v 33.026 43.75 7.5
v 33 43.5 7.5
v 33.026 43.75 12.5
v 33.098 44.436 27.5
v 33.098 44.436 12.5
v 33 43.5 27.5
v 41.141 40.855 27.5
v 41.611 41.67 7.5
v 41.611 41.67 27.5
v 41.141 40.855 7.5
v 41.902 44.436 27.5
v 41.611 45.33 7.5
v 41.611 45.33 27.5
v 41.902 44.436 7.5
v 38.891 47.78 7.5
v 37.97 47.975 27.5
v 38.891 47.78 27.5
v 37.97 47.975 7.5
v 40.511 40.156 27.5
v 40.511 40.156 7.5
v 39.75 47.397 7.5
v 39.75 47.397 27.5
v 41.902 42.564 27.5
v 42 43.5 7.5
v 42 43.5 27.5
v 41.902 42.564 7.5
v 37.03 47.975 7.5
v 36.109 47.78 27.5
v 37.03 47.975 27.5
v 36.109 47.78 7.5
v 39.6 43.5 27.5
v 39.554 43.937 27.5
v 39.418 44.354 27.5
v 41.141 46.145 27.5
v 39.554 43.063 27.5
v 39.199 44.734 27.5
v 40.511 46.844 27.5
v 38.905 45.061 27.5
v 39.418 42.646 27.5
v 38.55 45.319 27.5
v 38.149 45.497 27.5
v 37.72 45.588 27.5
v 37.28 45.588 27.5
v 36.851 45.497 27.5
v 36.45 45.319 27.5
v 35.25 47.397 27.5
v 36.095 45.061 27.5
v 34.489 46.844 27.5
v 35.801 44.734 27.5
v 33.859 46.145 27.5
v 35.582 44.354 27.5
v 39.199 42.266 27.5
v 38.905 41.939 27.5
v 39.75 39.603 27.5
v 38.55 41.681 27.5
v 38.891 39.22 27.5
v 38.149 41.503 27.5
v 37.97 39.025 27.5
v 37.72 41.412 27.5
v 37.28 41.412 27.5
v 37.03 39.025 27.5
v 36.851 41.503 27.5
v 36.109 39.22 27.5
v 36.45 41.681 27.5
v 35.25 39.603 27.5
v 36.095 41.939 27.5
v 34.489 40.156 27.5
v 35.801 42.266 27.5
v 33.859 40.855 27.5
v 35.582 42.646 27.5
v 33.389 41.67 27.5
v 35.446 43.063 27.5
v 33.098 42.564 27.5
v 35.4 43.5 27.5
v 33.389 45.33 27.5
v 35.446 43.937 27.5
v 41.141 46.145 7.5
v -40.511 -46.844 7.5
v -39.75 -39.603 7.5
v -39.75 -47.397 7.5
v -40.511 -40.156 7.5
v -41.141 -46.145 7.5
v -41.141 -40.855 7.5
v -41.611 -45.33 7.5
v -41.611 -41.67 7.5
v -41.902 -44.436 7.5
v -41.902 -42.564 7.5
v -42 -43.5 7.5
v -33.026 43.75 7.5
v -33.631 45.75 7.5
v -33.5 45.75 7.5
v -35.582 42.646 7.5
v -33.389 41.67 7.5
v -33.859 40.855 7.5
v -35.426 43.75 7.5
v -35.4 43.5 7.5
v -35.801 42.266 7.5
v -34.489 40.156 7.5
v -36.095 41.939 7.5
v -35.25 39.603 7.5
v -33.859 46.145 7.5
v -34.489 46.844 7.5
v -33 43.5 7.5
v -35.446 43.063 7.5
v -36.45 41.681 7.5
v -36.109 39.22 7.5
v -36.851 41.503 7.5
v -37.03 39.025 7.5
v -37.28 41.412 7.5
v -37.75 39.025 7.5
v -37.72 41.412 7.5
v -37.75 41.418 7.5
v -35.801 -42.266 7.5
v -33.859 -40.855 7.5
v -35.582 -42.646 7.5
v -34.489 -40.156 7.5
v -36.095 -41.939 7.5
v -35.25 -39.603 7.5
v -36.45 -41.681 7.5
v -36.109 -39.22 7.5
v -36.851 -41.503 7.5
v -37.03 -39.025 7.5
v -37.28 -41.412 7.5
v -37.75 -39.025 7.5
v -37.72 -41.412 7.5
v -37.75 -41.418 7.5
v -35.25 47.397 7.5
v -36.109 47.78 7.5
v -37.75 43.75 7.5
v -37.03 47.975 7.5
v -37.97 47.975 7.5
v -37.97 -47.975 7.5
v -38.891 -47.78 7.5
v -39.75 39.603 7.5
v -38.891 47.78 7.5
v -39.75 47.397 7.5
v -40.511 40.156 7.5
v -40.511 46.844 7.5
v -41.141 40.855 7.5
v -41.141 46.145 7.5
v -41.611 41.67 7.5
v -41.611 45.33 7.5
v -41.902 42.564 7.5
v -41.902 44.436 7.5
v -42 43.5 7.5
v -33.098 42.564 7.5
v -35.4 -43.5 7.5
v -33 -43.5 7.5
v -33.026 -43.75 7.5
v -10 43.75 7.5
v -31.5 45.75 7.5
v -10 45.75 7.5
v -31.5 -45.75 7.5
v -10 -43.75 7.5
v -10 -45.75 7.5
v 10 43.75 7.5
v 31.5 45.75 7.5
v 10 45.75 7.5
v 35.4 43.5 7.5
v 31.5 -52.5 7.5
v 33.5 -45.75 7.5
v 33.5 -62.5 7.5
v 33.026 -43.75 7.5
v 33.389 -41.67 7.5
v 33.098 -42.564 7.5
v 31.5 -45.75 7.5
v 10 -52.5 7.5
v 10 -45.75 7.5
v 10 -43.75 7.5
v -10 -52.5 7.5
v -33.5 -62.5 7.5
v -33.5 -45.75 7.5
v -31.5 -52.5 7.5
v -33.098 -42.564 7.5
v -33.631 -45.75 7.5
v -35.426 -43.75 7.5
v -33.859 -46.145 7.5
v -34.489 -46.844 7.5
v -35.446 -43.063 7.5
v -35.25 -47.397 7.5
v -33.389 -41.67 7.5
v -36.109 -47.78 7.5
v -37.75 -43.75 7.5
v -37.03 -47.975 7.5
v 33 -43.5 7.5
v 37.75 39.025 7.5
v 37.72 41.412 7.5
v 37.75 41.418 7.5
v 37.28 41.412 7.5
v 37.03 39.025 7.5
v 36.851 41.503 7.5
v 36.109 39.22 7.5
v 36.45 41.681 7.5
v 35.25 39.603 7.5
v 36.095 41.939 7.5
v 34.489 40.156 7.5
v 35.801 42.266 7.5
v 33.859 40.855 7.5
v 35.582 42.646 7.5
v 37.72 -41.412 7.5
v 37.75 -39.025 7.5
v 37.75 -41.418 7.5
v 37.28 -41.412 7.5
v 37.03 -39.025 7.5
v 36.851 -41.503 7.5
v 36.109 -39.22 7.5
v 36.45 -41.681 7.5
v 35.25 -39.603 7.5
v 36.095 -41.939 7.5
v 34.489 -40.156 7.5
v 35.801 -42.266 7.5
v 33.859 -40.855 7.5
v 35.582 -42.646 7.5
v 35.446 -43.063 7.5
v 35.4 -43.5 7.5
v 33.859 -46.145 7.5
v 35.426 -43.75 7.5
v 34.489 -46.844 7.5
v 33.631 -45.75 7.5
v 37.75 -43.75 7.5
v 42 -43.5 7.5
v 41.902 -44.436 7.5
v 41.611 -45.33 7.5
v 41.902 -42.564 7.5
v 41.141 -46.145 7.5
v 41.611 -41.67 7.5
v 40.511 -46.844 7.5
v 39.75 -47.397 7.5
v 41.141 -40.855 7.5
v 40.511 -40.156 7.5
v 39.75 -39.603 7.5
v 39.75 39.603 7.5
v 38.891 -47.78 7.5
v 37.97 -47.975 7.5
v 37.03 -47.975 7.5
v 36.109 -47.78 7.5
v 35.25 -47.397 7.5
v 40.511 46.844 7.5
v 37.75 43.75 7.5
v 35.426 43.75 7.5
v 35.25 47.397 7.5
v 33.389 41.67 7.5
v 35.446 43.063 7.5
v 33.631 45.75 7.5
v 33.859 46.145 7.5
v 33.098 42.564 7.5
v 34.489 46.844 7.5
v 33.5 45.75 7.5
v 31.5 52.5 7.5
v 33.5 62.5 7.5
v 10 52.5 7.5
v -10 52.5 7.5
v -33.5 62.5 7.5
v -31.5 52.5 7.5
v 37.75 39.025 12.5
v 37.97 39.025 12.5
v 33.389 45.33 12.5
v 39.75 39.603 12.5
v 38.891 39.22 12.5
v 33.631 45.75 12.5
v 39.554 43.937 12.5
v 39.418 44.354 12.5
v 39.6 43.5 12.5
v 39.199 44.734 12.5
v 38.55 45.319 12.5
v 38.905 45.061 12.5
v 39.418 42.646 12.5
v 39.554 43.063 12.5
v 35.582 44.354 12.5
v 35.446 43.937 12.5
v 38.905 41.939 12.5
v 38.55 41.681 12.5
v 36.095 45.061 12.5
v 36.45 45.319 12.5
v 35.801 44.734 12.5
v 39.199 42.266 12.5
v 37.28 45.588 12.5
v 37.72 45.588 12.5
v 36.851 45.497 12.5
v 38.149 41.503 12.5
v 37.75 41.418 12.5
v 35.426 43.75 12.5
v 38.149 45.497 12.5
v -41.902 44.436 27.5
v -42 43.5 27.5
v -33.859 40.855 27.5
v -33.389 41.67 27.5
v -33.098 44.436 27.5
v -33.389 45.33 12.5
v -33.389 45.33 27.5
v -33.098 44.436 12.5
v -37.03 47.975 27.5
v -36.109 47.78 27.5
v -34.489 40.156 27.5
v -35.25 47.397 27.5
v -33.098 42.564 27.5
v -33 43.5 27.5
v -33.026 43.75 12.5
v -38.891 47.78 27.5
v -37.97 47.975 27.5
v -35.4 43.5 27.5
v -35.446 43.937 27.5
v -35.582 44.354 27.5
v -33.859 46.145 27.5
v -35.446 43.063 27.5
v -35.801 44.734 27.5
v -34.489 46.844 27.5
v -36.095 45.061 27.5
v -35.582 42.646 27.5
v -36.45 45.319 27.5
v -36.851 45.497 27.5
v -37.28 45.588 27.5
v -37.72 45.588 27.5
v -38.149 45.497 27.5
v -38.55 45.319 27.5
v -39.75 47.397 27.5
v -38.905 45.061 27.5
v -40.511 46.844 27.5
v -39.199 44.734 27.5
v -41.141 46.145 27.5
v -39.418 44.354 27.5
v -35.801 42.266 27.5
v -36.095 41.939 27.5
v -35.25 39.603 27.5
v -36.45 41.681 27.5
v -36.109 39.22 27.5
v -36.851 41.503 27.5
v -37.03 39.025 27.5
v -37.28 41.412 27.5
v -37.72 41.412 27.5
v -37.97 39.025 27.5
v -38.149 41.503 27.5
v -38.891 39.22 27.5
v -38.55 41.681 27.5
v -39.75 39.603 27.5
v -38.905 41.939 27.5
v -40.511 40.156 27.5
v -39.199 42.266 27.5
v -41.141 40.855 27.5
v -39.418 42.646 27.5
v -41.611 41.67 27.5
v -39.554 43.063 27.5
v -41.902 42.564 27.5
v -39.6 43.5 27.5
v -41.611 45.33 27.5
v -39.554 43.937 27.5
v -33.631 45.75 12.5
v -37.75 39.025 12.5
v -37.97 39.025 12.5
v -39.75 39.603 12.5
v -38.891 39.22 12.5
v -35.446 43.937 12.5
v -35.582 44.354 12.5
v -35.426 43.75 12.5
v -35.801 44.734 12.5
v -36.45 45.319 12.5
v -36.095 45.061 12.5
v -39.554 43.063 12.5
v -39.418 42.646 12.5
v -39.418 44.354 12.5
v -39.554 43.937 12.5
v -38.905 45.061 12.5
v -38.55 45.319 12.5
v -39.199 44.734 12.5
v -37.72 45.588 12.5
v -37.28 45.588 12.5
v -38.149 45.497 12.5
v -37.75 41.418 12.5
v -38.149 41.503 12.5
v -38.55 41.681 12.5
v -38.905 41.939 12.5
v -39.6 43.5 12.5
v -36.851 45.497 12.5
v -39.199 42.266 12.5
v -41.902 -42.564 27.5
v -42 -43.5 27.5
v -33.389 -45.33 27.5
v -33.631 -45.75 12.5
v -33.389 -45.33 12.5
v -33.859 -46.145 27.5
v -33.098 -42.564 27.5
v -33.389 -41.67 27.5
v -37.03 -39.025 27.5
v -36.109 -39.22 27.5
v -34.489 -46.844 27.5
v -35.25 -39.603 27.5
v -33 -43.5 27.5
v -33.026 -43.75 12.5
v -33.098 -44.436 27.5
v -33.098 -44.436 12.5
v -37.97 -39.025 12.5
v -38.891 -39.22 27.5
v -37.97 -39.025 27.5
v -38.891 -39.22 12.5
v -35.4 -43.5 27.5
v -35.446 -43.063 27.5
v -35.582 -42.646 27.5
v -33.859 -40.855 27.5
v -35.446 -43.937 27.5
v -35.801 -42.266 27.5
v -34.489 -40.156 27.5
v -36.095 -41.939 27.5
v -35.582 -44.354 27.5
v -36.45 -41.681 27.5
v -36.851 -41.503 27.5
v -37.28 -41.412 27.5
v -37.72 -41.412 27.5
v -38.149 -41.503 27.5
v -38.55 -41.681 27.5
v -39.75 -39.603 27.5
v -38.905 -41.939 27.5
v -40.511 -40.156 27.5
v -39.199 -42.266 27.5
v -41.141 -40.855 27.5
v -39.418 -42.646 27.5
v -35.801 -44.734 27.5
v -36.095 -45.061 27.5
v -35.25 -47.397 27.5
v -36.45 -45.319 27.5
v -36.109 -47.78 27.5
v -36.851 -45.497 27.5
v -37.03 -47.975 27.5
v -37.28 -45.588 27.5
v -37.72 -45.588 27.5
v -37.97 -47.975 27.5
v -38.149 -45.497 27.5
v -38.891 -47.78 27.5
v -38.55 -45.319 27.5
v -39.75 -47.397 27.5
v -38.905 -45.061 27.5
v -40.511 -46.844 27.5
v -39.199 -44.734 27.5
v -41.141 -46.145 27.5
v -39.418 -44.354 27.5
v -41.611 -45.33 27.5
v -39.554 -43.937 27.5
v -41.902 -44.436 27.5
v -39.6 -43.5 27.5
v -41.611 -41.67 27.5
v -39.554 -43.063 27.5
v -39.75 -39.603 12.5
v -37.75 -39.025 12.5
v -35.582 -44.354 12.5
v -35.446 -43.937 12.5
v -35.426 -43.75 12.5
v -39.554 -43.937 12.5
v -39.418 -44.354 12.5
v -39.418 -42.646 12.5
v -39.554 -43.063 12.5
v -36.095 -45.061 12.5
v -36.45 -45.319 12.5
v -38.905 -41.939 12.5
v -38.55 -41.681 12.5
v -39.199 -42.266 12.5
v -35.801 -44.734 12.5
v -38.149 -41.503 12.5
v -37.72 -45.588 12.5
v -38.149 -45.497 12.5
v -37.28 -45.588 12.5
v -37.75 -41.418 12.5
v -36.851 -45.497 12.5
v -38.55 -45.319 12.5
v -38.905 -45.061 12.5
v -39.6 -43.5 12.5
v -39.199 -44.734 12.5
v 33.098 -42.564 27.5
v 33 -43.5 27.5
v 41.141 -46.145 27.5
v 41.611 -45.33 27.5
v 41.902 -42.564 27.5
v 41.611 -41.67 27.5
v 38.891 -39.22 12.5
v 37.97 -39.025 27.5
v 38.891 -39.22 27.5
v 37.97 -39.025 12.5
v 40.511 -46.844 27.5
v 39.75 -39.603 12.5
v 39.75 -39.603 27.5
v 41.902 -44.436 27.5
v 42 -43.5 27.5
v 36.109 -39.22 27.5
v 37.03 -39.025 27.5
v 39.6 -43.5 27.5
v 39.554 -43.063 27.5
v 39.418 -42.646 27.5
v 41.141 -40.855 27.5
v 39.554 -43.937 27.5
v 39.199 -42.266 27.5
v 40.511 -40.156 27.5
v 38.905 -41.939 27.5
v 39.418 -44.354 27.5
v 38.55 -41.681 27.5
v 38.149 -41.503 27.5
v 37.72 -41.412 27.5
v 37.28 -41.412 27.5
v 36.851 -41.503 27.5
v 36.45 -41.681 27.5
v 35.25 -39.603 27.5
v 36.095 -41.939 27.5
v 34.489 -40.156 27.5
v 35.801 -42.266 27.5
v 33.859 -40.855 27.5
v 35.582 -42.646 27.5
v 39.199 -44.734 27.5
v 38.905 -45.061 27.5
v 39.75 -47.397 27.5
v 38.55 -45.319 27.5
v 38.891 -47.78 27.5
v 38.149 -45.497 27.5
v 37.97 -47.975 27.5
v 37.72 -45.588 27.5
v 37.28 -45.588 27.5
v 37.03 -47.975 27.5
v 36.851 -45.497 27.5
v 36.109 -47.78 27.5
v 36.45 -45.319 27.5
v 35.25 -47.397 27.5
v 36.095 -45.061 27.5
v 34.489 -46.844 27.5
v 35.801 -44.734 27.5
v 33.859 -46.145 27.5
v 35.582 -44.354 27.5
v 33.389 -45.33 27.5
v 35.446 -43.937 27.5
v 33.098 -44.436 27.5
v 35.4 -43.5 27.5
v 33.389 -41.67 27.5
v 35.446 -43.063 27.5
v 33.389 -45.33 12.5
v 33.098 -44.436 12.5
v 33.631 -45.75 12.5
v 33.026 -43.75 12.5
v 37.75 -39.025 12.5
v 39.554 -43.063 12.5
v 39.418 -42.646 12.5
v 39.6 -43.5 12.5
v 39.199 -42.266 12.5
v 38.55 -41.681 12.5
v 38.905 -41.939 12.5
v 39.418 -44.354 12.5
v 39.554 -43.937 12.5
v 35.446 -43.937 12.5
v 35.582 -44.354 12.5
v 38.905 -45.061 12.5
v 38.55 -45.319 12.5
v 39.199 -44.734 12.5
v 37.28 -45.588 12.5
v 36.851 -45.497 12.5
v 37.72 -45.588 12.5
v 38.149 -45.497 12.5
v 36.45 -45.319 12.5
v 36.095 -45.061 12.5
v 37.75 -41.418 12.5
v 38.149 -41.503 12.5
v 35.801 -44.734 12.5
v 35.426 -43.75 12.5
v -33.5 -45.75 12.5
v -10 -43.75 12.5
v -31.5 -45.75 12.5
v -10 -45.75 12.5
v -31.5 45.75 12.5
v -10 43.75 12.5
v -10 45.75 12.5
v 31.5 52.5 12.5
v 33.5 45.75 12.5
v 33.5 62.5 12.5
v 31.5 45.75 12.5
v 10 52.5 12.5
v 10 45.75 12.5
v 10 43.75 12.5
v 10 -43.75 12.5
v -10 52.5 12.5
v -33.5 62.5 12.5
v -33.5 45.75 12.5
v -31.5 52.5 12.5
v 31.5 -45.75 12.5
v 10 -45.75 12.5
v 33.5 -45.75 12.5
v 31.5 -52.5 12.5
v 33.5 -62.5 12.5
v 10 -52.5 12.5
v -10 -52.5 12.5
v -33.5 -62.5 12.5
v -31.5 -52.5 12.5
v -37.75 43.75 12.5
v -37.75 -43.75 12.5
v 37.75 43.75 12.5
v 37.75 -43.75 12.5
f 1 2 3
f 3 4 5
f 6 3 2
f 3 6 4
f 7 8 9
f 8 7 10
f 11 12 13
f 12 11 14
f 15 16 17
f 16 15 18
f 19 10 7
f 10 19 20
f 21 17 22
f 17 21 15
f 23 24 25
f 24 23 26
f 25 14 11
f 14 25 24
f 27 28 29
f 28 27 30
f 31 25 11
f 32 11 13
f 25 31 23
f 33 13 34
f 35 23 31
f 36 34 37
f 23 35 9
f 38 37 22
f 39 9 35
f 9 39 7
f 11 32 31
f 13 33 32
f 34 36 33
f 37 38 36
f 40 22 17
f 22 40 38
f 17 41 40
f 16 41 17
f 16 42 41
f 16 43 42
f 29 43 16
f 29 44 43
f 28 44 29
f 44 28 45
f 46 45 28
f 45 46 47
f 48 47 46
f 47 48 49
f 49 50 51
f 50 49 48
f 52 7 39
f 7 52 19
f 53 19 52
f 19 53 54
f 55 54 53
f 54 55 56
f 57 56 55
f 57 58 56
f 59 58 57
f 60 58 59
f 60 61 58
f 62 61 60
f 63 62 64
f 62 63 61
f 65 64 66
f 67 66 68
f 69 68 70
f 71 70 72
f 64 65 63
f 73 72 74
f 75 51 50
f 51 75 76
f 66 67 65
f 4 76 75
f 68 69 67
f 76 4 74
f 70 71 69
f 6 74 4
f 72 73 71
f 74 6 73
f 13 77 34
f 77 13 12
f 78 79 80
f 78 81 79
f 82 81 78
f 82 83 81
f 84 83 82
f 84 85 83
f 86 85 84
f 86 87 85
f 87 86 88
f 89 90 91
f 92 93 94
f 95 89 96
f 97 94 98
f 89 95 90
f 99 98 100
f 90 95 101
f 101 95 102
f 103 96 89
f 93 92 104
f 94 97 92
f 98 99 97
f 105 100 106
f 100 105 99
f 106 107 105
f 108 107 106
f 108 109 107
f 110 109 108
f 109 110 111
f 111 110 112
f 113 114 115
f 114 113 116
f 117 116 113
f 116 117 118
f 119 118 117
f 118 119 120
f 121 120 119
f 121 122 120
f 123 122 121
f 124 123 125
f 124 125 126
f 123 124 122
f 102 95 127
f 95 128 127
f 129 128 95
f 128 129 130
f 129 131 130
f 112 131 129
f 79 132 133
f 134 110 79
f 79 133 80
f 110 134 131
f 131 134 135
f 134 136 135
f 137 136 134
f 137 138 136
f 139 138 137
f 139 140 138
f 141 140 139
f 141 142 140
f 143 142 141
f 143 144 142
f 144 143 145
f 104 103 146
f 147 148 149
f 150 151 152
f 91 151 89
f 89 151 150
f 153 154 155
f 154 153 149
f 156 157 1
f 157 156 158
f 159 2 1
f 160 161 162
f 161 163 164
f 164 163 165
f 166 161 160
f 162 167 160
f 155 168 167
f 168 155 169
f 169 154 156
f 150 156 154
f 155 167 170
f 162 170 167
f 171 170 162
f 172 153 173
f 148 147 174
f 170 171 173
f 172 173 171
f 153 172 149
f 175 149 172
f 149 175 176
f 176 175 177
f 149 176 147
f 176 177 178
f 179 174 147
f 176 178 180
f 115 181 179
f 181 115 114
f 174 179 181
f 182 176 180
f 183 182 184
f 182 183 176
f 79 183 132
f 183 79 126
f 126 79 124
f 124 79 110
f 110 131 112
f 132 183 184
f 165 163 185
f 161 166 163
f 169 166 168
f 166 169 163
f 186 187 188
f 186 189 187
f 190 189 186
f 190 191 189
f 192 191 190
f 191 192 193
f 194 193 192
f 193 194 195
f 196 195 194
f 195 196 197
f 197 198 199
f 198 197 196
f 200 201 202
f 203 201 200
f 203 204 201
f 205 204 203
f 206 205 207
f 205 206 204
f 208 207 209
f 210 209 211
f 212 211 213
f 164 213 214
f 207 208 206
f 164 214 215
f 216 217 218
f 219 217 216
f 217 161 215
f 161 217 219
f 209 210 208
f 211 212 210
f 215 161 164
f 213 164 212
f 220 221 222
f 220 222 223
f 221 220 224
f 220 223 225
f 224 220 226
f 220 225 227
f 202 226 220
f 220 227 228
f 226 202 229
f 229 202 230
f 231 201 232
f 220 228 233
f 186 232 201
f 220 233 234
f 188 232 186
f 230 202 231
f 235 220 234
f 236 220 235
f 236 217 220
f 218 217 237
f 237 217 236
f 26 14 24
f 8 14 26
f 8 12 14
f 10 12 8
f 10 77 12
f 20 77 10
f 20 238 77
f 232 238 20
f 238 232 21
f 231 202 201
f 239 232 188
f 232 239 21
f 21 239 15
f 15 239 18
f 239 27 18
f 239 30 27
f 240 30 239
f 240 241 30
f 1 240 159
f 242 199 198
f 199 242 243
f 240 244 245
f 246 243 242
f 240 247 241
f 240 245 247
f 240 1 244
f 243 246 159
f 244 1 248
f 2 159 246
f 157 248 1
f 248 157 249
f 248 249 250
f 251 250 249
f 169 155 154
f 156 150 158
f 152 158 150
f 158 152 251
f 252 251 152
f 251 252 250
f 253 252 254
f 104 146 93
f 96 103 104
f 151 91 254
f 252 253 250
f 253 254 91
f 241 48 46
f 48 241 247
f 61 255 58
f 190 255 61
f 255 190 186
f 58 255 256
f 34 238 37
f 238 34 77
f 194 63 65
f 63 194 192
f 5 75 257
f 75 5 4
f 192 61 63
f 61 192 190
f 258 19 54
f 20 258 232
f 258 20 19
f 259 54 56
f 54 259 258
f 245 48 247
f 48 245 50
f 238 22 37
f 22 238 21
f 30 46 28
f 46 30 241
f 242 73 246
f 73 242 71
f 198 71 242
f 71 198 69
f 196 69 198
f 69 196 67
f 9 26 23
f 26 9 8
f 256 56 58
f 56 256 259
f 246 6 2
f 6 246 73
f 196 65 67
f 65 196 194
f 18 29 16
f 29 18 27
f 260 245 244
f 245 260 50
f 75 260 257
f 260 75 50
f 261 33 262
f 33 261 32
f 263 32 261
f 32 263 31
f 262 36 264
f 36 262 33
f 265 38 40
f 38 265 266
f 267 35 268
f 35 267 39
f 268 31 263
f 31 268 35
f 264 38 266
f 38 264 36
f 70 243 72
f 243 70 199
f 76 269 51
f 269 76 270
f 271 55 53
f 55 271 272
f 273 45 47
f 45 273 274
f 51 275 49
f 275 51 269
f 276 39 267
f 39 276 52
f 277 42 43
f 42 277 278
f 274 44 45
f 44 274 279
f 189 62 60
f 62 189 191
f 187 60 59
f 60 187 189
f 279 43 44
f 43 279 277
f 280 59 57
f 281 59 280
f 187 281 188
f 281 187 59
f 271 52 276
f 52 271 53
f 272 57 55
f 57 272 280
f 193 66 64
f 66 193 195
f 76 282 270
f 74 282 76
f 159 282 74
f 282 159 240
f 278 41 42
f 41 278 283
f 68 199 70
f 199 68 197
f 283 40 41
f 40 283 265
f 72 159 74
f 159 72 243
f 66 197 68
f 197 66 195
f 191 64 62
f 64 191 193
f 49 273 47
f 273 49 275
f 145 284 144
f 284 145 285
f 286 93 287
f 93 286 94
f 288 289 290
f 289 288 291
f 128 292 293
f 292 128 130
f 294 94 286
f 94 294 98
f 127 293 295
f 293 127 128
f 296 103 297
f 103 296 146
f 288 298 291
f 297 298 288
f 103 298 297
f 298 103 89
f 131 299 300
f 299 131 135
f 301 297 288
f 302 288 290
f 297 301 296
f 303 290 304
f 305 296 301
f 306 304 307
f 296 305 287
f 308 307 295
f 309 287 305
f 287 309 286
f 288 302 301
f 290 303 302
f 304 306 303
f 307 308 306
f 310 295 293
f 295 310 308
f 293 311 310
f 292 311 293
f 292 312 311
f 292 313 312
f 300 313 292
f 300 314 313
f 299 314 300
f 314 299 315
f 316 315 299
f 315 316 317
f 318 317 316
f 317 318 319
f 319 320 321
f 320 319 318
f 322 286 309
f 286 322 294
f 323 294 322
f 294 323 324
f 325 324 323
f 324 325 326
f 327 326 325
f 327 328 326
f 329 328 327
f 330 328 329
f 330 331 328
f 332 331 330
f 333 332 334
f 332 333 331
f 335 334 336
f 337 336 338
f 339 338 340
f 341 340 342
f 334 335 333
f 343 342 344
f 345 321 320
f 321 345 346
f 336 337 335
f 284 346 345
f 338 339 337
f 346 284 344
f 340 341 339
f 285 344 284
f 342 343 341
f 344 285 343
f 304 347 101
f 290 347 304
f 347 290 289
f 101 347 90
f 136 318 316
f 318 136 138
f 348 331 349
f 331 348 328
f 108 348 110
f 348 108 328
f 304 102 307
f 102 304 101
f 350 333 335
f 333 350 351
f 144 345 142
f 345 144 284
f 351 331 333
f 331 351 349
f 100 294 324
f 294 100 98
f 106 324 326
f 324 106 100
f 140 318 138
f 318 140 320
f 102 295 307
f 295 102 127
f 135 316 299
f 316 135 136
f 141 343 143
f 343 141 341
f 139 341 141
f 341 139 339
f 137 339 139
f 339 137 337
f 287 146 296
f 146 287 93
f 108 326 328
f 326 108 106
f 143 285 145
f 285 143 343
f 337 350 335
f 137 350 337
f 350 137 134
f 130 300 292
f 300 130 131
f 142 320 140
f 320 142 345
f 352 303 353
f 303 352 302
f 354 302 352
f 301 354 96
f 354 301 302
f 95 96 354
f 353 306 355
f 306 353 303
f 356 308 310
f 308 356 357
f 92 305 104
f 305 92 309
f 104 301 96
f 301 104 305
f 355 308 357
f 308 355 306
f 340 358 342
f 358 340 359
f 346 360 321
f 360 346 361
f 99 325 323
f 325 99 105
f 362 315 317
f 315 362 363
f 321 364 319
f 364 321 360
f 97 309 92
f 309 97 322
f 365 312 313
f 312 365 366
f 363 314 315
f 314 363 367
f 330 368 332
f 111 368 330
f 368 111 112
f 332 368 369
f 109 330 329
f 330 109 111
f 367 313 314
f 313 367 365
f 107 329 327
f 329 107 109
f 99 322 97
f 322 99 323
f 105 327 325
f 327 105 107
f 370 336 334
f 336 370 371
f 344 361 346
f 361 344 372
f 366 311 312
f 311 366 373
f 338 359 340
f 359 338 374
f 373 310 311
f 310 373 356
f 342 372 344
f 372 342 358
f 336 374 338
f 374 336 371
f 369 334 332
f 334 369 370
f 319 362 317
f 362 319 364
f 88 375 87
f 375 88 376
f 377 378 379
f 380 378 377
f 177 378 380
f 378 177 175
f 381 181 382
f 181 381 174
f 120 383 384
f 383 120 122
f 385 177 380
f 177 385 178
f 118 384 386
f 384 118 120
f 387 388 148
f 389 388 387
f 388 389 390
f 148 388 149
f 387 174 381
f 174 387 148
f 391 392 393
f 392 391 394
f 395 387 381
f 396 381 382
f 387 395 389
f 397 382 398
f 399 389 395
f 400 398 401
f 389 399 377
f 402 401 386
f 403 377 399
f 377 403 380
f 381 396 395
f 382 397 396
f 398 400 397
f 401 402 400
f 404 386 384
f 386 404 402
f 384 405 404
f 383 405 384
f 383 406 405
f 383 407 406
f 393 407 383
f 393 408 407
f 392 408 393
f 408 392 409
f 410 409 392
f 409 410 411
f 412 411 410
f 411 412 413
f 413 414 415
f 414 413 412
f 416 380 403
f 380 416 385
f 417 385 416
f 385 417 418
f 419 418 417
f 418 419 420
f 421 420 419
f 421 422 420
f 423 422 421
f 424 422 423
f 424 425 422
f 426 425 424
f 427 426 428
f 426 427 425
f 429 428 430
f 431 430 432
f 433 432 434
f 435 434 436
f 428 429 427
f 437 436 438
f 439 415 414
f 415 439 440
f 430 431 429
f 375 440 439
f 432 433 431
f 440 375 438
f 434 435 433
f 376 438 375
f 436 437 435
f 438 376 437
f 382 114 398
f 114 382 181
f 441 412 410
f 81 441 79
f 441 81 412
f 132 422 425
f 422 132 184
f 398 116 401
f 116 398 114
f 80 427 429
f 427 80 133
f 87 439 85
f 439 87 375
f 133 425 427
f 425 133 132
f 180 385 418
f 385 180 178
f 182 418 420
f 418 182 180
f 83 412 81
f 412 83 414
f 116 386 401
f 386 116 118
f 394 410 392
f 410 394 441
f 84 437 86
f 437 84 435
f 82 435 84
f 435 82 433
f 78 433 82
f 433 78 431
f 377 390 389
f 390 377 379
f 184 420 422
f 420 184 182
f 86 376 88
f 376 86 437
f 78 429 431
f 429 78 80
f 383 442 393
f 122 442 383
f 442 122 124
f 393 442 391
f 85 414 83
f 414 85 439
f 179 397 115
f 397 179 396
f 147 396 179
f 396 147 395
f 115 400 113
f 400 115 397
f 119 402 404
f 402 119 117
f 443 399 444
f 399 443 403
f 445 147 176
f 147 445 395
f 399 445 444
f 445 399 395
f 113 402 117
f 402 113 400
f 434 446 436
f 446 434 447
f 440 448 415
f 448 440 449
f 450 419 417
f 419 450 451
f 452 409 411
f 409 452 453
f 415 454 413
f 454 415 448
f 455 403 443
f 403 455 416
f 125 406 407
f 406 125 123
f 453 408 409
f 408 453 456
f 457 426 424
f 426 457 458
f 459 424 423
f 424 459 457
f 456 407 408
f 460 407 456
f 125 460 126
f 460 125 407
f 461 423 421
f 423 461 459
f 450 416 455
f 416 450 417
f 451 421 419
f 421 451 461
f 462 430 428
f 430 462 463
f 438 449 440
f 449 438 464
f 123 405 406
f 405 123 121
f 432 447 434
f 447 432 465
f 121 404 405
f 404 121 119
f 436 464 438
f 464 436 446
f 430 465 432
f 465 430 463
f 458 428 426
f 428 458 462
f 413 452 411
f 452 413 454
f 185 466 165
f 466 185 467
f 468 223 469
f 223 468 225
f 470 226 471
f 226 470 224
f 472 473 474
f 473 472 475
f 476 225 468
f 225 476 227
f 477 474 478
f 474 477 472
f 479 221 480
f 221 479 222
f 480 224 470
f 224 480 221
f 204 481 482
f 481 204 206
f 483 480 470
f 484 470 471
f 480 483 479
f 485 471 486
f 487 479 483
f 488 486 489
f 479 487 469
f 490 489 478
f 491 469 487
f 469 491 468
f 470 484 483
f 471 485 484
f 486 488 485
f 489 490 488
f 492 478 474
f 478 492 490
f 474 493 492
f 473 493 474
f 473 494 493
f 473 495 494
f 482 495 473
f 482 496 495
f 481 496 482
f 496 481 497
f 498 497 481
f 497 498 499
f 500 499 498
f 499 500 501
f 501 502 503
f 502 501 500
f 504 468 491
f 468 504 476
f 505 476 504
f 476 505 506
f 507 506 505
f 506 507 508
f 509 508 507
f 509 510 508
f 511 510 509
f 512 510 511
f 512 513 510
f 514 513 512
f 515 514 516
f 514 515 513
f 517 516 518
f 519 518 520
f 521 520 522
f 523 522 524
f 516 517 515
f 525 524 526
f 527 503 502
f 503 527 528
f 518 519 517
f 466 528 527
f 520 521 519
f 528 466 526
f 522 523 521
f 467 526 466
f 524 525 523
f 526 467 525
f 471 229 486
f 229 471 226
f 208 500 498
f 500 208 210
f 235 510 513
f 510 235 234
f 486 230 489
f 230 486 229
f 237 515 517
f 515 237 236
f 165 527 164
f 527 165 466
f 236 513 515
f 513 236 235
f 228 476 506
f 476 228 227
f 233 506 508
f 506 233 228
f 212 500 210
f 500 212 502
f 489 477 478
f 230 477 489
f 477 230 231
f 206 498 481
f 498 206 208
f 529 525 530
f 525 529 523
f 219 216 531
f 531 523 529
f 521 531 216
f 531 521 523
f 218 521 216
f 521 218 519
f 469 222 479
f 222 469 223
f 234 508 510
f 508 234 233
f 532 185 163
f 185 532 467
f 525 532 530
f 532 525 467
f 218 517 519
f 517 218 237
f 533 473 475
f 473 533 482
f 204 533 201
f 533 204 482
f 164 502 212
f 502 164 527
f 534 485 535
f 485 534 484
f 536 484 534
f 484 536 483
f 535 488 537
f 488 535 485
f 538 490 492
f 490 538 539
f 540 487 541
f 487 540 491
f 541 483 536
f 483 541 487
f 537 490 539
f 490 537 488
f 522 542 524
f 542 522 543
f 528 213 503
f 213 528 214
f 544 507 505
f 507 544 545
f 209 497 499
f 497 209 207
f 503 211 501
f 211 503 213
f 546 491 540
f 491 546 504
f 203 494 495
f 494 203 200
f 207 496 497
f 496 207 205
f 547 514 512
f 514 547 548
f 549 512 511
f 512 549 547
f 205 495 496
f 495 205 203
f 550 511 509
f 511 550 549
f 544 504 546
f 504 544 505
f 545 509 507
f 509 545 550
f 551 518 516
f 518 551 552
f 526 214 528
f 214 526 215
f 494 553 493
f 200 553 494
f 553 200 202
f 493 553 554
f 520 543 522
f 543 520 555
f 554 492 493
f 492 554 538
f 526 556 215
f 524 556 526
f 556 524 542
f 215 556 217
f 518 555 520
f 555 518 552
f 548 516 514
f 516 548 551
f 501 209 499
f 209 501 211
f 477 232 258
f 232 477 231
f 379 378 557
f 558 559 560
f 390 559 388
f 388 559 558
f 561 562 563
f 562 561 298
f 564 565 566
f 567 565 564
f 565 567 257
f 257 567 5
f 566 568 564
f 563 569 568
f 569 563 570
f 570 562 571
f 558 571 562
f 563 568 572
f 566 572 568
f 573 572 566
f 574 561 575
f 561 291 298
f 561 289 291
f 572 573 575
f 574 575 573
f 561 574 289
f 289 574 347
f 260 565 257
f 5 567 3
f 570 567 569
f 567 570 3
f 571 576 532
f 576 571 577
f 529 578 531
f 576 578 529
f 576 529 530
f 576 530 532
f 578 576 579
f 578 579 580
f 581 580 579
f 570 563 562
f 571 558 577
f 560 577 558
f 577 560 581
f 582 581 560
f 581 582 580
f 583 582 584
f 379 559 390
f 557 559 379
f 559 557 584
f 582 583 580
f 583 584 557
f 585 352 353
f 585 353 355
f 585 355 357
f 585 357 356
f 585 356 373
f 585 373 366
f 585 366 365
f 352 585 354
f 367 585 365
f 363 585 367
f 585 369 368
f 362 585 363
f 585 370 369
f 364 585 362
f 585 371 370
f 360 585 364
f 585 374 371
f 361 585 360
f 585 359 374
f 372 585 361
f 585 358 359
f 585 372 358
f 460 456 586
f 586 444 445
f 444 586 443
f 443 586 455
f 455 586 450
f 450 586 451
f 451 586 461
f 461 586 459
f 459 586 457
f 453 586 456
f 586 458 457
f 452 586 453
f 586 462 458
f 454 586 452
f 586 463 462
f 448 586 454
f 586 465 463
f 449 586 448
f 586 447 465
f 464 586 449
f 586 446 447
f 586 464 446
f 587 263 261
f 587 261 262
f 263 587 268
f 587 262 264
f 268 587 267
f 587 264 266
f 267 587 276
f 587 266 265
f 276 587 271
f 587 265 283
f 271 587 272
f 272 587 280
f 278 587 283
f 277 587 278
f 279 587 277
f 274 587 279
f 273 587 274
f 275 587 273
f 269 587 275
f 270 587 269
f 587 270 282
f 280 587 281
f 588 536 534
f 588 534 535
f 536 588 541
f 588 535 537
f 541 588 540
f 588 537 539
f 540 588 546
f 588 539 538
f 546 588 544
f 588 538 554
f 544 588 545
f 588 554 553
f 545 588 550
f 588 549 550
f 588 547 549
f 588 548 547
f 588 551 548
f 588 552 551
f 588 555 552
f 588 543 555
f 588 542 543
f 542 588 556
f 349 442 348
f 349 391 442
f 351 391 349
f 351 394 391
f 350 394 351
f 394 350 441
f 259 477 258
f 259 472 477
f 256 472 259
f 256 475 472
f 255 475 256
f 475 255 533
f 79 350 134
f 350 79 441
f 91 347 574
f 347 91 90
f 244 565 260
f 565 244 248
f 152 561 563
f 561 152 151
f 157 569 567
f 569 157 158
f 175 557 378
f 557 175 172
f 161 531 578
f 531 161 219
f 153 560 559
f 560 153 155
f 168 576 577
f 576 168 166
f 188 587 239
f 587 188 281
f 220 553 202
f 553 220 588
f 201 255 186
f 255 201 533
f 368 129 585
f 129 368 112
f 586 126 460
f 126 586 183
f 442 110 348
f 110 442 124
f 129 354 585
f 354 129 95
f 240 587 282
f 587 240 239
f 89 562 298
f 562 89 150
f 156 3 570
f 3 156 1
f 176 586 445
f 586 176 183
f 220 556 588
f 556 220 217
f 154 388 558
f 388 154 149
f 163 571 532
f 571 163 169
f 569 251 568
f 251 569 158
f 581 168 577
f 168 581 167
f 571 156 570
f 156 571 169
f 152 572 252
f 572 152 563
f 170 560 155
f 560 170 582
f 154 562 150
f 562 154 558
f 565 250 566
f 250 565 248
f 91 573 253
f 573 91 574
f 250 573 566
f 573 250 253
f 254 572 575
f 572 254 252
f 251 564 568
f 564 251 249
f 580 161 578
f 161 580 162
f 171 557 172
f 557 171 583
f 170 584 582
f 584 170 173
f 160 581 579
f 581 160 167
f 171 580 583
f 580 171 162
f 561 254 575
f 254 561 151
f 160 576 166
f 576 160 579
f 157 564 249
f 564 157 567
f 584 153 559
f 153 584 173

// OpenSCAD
$fn=30;



RAD = 15/2;
MAIN_LEN = 115;
TOT_WIDTH = 74.5;
RING_HT=10;

ARM_THICKNESS = 5;
FRAME_WD = 4;

//=######################################################################
//SCREW STANCHIONS

SCREWHOLE_WD = 75;
SCREWHOLE_LEN = 87;
screw_x = SCREWHOLE_WD/2;
screw_y = SCREWHOLE_LEN/2;
STANCHION_RAD = 9/2;
STANCHION_HT = 20;

sh_coords = [
    [screw_x, screw_y],
    [-screw_x, screw_y],
    [-screw_x, -screw_y],
    [screw_x, -screw_y],
];



module stanchion(){
    difference(){
        cylinder(h=STANCHION_HT,r=STANCHION_RAD,center=true);
        cylinder(h=STANCHION_HT+3,r=4.2/2,center=true);

    }
}

for(coords = sh_coords){
    translate([coords[0],coords[1],RAD+STANCHION_HT/2]){
        stanchion();
    }
}

translate([0,0,RAD+(ARM_THICKNESS/2)])
difference(){
    cube([SCREWHOLE_WD+STANCHION_RAD,
            SCREWHOLE_LEN+STANCHION_RAD,
            ARM_THICKNESS],
            center=true);

    cube([SCREWHOLE_WD+STANCHION_RAD-FRAME_WD,
            SCREWHOLE_LEN+STANCHION_RAD-FRAME_WD,
            ARM_THICKNESS+2],
            center=true);
}


translate([0,screw_y+7,RAD+(ARM_THICKNESS/2)-1]){
    difference(){
        cube([15,10,3],center=true);
        cylinder(h=5,r=3/2,center=true);
    }
}

translate([0,-screw_y-7,RAD+(ARM_THICKNESS/2)-1]){
    difference(){
        cube([15,10,3],center=true);
        cylinder(h=5,r=3/2,center=true);
    }
}


//***********************************************************************






//################################################################
// RING ARMS
arm_len = TOT_WIDTH -(RAD);


translate([0, RING_HT/2 - 4, RAD+(ARM_THICKNESS/2)]){
    cube([20,MAIN_LEN,ARM_THICKNESS],center=true);
}

translate([0, MAIN_LEN/2 , RAD+(ARM_THICKNESS/2)]){
    cube([arm_len,RING_HT,ARM_THICKNESS],center=true);
}


translate([0, -MAIN_LEN/2 , RAD+(ARM_THICKNESS/2)]){
    cube([arm_len,RING_HT,ARM_THICKNESS],center=true);
}

// ##############################
// join arms to stanchions for strength
translate([-(SCREWHOLE_WD/2)+5,MAIN_LEN/2 - RING_HT*(3/4) ,RAD+(ARM_THICKNESS/2)]){
    cube([FRAME_WD/2,RING_HT,ARM_THICKNESS],center=true);
}

translate([(SCREWHOLE_WD/2)-5,-MAIN_LEN/2 + RING_HT*(3/4) ,RAD+(ARM_THICKNESS/2)]){
    cube([FRAME_WD/2,RING_HT,ARM_THICKNESS],center=true);
}

translate([(SCREWHOLE_WD/2)-5,MAIN_LEN/2 - RING_HT*(3/4) ,RAD+(ARM_THICKNESS/2)]){
    cube([FRAME_WD/2,RING_HT,ARM_THICKNESS],center=true);
}

translate([-(SCREWHOLE_WD/2)+5,-MAIN_LEN/2 + RING_HT*(3/4) ,RAD+(ARM_THICKNESS/2)]){
    cube([FRAME_WD/2,RING_HT,ARM_THICKNESS],center=true);
}
